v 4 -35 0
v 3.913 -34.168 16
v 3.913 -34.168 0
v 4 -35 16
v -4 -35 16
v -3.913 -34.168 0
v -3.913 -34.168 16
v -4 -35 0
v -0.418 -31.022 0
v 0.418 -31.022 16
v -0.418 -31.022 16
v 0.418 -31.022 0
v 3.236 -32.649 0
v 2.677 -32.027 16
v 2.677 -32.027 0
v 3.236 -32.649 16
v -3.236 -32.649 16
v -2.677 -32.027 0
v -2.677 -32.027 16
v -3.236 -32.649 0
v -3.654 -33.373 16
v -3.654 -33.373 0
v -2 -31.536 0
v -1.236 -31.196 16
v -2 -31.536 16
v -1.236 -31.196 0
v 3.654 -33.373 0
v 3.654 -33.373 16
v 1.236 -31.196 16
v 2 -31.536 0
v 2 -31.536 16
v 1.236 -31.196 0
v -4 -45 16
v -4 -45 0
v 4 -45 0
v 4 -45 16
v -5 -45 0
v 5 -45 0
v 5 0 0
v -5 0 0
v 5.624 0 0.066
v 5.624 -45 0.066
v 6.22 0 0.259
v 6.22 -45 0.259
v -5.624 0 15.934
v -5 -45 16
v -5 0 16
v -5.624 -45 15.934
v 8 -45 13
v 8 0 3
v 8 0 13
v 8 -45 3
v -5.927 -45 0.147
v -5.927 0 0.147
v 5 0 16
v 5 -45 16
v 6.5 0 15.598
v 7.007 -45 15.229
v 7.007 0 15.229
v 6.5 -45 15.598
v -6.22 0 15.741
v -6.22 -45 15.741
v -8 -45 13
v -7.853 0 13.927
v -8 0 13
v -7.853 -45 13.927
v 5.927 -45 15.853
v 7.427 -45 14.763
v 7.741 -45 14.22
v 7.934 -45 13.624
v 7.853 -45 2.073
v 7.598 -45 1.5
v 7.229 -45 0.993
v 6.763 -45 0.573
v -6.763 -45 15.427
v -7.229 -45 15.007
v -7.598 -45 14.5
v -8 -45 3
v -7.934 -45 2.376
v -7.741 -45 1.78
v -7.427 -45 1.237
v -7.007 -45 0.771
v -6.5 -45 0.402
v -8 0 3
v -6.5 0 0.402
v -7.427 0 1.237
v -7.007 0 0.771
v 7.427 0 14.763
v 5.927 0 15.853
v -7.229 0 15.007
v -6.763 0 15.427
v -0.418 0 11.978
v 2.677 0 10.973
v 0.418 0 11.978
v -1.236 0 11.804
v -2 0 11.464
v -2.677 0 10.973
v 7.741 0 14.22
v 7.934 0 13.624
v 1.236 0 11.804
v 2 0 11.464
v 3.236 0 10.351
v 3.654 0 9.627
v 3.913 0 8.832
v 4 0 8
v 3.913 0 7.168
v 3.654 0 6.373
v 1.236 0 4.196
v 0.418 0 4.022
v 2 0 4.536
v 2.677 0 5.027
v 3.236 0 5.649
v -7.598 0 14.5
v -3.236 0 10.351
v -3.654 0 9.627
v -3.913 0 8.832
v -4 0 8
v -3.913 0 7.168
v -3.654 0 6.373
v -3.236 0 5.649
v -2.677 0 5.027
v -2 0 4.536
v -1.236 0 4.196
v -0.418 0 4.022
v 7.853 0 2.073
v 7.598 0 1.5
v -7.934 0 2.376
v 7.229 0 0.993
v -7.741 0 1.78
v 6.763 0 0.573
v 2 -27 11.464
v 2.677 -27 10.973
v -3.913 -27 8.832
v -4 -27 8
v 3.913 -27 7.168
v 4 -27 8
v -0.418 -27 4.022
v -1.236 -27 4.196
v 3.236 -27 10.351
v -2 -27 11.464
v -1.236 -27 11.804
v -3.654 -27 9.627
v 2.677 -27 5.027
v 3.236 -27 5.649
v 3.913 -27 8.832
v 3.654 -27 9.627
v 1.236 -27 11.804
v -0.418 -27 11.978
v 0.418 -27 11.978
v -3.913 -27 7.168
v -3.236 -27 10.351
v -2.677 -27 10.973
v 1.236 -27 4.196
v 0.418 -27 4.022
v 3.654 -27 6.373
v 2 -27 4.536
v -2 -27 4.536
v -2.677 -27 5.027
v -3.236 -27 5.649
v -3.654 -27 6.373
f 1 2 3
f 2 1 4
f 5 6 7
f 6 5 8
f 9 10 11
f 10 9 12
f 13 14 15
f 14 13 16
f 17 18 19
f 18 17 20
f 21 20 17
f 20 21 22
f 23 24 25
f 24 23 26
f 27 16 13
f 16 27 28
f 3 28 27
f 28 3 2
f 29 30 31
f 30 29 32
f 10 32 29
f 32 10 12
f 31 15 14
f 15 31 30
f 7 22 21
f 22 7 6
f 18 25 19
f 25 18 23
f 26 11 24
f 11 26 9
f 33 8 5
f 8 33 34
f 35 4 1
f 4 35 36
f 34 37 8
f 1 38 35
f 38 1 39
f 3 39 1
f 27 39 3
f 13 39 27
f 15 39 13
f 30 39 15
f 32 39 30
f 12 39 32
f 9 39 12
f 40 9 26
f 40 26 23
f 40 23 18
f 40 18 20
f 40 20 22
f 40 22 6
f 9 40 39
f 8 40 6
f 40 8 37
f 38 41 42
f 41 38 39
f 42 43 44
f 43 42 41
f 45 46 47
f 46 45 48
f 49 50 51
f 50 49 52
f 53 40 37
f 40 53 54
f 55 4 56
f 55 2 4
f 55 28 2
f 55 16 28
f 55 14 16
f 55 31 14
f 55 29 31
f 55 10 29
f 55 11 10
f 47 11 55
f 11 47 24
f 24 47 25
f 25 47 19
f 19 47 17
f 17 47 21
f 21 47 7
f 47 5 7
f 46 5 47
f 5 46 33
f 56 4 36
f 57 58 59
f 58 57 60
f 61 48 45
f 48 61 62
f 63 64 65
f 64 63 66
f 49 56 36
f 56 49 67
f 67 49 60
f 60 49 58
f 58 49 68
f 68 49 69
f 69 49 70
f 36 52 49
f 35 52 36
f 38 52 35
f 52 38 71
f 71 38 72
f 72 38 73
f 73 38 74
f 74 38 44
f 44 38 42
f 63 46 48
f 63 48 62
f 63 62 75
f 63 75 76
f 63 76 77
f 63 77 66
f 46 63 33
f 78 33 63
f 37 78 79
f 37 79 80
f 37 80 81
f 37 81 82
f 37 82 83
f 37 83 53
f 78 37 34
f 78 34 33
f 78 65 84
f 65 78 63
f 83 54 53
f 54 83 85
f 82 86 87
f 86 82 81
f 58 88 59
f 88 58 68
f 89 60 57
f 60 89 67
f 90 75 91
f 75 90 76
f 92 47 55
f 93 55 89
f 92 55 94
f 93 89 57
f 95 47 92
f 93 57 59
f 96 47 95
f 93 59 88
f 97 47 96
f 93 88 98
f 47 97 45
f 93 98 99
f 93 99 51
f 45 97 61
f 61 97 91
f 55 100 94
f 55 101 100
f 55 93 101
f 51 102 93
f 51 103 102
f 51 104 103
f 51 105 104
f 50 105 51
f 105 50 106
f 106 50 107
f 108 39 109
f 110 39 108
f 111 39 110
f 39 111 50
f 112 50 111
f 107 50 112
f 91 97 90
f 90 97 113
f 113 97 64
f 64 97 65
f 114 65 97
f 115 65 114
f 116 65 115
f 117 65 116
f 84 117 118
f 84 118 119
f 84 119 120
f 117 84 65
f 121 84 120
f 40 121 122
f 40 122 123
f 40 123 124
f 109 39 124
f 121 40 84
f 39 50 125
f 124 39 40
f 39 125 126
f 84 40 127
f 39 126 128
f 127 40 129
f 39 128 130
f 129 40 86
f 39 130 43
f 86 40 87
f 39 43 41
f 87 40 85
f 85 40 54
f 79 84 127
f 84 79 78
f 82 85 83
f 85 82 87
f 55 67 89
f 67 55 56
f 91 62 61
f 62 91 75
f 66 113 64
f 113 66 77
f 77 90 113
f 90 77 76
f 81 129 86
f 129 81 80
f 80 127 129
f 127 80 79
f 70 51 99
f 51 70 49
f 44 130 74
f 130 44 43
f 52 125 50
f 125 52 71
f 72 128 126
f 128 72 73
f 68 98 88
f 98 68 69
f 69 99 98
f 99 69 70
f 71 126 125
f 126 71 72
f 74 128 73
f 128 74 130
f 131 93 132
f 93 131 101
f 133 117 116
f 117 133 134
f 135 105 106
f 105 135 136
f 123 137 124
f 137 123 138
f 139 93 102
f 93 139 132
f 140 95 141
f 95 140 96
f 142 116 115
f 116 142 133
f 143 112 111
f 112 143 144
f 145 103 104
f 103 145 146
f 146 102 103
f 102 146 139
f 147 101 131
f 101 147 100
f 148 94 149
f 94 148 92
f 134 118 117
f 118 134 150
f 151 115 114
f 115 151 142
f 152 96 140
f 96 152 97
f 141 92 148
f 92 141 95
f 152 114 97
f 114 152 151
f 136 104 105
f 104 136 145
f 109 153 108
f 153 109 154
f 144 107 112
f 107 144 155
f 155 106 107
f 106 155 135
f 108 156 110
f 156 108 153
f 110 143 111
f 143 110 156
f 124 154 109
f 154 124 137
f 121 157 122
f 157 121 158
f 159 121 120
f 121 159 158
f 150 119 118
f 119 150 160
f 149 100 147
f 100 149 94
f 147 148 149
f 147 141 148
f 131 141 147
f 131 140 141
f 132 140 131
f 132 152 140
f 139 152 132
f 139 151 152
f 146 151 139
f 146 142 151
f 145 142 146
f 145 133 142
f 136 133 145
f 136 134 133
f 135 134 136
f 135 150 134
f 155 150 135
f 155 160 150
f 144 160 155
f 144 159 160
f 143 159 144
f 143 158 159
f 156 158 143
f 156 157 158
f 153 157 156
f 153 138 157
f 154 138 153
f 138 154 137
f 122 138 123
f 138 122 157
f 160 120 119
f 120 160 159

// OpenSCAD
// file: config.scad
/**
 * Глобальный конфигурационный файл
 */
// качество цилиндров
$fn=30;

// избегание совпадения граней
DELTA=0.1;

// толщина рамы
FRAME=15;
// main file
include <config.scad>

// верхняя часть
// ребро квадрата
x1=10;
// радиус закругления
r1=3;
// длина
y1=45;

// продольное отверстие
// радиус
r2=4;
// глубина
y2=27;

// поперечное отверстие
// радиус
r3=4;
// глубина канавки
y3=10;

module holder_part01() {
rotate([90,0,0])
translate([-x1/2,r1,0])
difference() {
    linear_extrude(height=y1)offset(r=r1)square(x1);
    translate([x1/2,x1/2,-DELTA])cylinder(r=r2,h=y2+DELTA);
    rotate([-90,0,0])translate([x1/2,-y1+y3,-r1]){
        translate([0,0,-DELTA])cylinder(r=r3,h=x1+2*r1+DELTA*2);
        translate([-r3,-y3-DELTA,-DELTA])cube([r3*2,y3+DELTA,x1+2*r1+DELTA*2]);
    }
}
}

holder_part01();
